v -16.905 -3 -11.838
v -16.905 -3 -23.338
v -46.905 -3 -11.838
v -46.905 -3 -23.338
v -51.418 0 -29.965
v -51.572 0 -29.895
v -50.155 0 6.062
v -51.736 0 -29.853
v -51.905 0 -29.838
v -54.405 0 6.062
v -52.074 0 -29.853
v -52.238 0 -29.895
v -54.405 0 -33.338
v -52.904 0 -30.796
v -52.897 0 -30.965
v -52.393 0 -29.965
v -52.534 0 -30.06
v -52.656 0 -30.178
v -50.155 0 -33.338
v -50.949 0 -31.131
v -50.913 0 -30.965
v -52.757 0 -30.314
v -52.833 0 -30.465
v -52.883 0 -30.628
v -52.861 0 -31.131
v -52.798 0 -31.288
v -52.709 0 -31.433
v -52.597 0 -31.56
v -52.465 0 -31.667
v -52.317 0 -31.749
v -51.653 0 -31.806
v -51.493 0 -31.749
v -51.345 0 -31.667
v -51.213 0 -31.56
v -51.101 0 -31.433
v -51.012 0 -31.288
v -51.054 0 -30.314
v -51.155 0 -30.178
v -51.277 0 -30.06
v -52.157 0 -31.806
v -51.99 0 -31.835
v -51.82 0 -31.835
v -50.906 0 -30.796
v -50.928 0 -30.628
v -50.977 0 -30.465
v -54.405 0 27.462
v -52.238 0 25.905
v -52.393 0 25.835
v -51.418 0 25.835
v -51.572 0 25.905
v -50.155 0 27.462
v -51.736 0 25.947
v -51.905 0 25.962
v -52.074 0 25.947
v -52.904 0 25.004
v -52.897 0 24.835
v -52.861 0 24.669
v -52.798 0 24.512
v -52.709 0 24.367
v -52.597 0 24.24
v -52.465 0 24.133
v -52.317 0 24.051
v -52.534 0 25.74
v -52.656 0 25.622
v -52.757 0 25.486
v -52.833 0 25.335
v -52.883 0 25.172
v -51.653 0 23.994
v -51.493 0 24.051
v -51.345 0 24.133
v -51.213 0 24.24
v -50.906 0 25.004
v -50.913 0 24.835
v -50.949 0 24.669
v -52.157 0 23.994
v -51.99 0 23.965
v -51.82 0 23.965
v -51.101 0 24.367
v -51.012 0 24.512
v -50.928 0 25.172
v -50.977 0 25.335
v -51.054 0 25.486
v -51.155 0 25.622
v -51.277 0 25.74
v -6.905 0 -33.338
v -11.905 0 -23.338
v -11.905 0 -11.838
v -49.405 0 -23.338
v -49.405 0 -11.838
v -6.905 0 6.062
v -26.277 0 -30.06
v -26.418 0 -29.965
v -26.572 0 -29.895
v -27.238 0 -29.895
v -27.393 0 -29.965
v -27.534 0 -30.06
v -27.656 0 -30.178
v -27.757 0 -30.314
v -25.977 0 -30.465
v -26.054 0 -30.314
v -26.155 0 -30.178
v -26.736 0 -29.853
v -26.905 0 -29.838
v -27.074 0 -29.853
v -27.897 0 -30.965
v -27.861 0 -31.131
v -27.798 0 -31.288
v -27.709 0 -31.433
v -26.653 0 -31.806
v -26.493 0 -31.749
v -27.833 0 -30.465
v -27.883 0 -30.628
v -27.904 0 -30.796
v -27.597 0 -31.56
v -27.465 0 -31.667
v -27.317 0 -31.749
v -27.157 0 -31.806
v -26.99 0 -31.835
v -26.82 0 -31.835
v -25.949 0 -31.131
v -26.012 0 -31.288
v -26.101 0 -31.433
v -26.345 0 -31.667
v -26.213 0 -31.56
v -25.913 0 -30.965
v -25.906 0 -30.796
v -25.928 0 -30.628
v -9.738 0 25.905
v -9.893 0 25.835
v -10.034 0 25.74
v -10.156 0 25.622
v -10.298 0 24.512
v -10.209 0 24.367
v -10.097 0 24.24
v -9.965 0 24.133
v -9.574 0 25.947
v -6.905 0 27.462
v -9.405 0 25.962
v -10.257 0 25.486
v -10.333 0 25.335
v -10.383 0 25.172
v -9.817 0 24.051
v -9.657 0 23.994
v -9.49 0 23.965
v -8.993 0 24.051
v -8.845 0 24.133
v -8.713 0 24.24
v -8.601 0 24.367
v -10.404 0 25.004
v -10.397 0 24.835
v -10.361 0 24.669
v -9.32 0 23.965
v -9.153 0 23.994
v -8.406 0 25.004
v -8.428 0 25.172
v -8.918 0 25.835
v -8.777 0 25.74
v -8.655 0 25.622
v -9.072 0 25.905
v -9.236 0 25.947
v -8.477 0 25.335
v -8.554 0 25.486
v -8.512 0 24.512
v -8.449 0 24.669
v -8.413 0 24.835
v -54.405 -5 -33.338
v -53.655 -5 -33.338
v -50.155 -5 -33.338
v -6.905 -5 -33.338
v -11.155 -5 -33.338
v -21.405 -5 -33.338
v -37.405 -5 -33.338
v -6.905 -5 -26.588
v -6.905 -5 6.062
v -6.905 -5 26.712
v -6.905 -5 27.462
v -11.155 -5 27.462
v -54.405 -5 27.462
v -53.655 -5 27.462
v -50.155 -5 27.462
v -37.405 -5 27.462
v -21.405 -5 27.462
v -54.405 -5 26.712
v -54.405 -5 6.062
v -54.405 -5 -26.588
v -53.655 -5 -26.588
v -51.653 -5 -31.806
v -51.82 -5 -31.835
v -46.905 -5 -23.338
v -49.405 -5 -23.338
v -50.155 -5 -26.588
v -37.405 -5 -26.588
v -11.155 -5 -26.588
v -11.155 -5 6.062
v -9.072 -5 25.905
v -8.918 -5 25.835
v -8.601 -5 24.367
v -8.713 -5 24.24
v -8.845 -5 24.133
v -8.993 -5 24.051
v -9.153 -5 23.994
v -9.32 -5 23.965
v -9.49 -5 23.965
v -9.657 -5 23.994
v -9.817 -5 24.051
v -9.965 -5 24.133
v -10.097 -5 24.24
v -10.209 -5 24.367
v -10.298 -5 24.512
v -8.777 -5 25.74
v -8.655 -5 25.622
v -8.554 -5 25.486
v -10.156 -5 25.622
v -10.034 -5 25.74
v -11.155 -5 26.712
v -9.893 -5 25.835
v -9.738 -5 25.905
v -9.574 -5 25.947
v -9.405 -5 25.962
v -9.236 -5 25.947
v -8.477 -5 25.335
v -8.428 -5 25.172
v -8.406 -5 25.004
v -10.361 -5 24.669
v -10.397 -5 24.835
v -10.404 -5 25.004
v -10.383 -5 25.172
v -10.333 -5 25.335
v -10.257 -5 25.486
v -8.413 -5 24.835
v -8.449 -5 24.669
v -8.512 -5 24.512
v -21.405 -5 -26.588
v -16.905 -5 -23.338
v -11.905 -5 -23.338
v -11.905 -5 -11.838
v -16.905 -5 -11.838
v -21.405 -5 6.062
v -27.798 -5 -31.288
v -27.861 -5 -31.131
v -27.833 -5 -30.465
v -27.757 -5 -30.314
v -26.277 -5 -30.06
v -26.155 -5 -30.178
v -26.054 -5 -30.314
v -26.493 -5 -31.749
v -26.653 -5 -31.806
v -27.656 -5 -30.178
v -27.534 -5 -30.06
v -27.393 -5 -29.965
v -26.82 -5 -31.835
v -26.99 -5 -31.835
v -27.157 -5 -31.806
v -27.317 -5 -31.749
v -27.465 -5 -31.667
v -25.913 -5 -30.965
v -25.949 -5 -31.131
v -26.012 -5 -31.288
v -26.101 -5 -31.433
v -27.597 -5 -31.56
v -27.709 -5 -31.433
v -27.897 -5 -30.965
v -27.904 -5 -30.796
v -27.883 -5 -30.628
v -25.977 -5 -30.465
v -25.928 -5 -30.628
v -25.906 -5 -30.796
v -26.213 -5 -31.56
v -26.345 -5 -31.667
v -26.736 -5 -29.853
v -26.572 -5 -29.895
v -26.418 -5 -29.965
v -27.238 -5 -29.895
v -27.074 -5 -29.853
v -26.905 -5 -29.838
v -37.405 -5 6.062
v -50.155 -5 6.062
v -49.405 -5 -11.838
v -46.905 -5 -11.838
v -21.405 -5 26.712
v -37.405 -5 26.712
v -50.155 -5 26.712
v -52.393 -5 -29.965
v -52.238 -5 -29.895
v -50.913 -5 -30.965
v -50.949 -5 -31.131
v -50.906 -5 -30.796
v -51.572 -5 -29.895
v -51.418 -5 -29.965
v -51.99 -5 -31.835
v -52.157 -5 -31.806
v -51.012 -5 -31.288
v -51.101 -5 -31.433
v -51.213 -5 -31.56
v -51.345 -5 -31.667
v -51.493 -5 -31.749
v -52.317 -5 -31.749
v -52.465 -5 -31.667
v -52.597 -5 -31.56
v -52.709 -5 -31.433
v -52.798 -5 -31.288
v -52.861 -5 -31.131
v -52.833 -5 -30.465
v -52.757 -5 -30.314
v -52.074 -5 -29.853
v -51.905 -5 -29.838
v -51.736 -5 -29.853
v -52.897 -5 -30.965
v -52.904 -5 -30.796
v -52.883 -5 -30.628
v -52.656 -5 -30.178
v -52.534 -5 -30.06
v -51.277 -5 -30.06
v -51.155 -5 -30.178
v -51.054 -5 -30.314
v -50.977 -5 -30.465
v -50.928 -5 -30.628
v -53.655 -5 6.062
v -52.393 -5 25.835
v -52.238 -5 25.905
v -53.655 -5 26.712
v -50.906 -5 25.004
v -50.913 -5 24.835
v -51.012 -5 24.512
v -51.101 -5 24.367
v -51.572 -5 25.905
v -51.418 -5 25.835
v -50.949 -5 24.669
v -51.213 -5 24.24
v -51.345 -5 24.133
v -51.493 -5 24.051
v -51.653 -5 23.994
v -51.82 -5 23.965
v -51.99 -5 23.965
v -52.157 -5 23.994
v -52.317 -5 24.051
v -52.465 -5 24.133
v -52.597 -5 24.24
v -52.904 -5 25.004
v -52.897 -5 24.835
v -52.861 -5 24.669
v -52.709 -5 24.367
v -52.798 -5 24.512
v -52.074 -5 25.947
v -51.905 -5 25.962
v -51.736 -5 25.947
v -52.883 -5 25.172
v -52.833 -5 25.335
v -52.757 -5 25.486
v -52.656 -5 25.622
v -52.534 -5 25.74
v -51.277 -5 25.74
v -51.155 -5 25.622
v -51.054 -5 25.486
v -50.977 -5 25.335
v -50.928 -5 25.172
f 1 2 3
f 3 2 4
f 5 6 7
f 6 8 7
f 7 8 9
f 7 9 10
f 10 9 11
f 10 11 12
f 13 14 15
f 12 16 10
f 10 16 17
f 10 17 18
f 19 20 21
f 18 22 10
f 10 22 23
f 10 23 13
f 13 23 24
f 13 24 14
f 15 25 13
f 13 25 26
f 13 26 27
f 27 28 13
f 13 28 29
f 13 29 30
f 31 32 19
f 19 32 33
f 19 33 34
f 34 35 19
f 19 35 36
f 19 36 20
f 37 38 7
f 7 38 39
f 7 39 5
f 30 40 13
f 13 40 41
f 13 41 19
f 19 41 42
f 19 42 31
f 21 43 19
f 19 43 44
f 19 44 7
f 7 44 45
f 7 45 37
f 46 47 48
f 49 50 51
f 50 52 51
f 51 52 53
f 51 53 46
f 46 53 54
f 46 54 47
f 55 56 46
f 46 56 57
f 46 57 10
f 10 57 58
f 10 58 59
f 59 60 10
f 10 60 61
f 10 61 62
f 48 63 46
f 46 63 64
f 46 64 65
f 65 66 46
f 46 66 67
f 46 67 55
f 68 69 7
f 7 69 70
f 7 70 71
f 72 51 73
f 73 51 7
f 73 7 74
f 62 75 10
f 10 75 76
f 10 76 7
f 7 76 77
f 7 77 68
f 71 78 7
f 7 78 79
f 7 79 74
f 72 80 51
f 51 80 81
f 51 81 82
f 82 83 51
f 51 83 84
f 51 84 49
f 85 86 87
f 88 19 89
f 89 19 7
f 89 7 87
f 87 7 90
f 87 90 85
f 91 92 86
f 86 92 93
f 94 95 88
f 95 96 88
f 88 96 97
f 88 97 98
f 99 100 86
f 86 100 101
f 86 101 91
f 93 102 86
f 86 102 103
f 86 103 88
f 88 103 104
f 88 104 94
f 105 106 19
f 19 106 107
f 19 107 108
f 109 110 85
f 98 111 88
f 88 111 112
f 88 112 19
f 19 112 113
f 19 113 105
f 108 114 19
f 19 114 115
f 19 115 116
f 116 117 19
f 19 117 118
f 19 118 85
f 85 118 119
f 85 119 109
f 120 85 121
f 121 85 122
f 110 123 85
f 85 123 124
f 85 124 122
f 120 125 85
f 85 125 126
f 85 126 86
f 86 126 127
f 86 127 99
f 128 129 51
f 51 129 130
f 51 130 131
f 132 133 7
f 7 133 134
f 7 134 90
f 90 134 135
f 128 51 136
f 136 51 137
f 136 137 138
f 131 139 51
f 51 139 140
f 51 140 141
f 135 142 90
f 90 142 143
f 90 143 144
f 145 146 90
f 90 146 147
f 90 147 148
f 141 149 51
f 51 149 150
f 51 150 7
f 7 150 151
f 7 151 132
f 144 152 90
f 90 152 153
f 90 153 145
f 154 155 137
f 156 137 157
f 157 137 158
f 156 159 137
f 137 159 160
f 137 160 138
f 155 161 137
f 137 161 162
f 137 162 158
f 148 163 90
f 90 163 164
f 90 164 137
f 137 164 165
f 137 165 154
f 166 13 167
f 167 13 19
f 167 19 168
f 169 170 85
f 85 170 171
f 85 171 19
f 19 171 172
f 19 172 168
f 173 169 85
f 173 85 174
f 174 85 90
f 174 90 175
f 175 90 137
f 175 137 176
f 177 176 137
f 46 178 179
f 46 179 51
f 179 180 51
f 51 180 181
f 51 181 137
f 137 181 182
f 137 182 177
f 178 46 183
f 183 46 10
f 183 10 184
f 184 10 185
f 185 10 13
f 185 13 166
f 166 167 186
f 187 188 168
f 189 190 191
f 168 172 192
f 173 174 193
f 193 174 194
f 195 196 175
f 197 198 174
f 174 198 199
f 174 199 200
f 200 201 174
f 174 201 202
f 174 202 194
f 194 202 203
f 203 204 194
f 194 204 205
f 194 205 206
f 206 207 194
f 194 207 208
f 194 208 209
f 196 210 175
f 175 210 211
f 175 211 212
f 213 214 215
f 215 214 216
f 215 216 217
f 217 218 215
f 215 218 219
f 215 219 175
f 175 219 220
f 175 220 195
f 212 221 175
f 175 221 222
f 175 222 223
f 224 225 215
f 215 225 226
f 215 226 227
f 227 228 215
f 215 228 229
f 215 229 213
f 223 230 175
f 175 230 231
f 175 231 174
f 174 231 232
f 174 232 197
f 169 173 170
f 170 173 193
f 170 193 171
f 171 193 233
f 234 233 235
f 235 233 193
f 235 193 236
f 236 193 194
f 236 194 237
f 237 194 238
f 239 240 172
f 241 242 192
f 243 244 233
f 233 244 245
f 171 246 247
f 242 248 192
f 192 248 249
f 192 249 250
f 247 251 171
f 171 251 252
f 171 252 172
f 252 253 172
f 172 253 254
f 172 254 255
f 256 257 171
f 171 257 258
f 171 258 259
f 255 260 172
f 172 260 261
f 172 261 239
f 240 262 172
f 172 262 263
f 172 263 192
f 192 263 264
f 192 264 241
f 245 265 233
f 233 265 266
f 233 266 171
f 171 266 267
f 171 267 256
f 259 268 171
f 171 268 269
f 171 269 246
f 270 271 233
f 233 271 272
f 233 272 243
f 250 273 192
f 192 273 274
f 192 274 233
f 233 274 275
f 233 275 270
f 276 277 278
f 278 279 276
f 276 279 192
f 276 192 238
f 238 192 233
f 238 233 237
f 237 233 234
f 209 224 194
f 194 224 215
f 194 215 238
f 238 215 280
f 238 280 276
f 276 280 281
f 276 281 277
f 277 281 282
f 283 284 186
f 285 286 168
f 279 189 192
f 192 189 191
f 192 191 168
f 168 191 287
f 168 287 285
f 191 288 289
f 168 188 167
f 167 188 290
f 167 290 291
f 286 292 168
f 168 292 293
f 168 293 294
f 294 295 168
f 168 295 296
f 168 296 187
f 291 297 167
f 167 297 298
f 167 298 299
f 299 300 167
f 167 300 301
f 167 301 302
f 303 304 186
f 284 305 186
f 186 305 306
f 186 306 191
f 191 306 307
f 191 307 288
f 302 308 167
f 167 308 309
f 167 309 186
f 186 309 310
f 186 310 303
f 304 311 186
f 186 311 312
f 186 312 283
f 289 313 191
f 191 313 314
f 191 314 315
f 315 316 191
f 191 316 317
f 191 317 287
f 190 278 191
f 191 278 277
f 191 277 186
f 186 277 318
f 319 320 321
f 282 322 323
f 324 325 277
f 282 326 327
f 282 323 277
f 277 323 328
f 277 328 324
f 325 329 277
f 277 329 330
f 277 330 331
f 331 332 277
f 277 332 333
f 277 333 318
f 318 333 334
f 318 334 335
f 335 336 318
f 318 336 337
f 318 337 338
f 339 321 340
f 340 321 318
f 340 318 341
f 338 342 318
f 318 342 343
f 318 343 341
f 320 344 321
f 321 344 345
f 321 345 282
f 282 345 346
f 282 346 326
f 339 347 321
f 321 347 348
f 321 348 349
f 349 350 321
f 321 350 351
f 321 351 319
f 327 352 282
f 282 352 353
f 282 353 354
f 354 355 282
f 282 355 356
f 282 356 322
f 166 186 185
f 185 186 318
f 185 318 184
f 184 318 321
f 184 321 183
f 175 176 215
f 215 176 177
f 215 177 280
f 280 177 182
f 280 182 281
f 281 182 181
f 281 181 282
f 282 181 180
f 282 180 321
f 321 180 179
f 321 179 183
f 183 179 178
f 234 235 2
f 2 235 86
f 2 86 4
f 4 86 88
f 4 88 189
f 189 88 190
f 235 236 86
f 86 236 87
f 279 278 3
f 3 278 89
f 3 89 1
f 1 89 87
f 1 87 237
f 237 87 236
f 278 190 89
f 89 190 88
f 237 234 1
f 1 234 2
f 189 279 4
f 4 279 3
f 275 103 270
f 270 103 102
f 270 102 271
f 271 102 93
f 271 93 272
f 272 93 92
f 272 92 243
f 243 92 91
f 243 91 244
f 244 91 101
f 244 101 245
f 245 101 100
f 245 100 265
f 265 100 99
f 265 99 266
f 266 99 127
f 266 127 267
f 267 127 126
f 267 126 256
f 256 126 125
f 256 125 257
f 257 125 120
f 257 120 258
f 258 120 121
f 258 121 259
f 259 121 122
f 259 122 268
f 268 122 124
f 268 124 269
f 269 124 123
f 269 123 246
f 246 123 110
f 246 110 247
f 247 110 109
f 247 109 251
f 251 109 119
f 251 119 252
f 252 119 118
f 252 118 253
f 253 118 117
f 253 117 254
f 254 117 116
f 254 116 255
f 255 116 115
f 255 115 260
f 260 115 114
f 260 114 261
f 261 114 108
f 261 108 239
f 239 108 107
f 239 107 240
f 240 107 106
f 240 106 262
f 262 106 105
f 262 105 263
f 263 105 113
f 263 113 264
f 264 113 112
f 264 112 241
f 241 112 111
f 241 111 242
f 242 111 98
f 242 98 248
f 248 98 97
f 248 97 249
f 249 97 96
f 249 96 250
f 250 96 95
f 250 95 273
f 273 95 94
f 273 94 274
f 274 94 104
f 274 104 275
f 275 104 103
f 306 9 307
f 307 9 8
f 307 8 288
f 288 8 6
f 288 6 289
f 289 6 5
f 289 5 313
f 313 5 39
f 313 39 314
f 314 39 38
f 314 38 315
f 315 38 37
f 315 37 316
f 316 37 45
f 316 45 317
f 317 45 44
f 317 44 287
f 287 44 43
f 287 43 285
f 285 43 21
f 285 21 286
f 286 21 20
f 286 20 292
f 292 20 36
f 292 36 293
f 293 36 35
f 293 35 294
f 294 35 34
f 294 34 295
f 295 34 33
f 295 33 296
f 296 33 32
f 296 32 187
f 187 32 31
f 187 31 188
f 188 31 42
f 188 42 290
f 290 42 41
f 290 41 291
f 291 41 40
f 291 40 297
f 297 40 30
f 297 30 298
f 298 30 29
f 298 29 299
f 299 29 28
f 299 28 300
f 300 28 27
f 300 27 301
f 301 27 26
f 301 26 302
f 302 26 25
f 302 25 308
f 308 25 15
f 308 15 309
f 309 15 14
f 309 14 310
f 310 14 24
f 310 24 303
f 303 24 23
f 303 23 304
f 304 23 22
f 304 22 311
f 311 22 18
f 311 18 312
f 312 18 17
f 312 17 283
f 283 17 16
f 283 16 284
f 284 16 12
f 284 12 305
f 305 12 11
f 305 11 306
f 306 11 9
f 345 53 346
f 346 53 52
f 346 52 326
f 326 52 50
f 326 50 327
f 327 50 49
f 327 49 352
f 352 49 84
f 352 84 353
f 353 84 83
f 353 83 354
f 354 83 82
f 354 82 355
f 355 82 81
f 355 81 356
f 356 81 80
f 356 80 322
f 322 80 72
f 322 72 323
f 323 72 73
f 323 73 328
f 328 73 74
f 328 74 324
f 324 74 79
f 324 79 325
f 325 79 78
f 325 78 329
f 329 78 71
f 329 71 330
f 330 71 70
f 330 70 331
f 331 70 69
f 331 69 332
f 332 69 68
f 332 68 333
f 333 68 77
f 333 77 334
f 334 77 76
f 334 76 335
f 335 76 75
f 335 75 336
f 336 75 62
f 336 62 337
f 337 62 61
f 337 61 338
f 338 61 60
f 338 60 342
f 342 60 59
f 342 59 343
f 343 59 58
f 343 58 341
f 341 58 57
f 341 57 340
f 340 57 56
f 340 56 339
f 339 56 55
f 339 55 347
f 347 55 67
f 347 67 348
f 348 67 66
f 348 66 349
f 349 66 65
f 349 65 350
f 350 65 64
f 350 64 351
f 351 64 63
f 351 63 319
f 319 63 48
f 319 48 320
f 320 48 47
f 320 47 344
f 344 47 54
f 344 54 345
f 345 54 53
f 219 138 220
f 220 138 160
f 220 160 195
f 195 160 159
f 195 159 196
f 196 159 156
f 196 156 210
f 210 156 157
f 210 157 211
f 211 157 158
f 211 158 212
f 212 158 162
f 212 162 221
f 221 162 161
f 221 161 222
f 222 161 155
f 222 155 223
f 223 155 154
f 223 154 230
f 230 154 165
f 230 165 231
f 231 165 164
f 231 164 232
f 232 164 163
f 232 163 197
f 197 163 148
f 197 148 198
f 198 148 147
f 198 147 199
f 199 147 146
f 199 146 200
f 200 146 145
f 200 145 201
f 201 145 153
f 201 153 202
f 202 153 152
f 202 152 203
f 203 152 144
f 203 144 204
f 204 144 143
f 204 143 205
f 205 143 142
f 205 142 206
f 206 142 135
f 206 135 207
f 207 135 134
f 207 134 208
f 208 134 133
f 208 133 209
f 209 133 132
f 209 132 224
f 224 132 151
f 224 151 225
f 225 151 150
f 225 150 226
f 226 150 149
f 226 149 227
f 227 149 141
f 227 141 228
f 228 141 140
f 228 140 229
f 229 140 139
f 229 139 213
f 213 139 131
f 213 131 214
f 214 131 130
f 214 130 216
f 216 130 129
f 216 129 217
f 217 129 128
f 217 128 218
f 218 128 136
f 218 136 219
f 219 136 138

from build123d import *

# Parameters (mm, degrees)
SKETCH_1_W          = 47.5
SKETCH_1_H          = 60.8
EXTRUDE_1_DEPTH     = 5
SKETCH_2_W          = 37.5
SKETCH_2_H          = 11.5
CUT_EXTRUDE_1_DEPTH = 3
SKETCH_3_W          = 2.5
SKETCH_3_H          = 11.5
SKETCH_3_W_2        = 5
CUT_EXTRUDE_2_DEPTH = 2
SKETCH_4_R          = 1
CUT_EXTRUDE_3_DEPTH = 5


with BuildPart() as part:
    # 草图1 → 凸台-拉伸1 (new body)
    with BuildSketch(Plane(origin=(0, 0, 0), x_dir=(1, 0, 0), z_dir=(0, 1, 0))):
        with Locations((-30.655286344, 2.938237127)):
            Rectangle(SKETCH_1_W, SKETCH_1_H)
    extrude(amount=-EXTRUDE_1_DEPTH)

    # 草图2 → 切除-拉伸1 (cut)
    with BuildSketch(Plane(origin=(0, 0, 0), x_dir=(1, 0, 0), z_dir=(0, 1, 0))):
        with Locations((-30.655286344, 17.588237127)):
            Rectangle(SKETCH_2_W, SKETCH_2_H)
    extrude(amount=-CUT_EXTRUDE_1_DEPTH, mode=Mode.SUBTRACT)

    # 草图3 → 切除-拉伸2 (cut)
    with BuildSketch(Plane(origin=(0, -3, 0), x_dir=(1, 0, 0), z_dir=(0, 1, 0))):
        with Locations((-48.155286344, 17.588237127)):
            Rectangle(SKETCH_3_W, SKETCH_3_H)
        with Locations((-14.405286344, 17.588237127)):
            Rectangle(SKETCH_3_W_2, SKETCH_3_H)
    extrude(amount=-CUT_EXTRUDE_2_DEPTH, mode=Mode.SUBTRACT)

    # 草图4 → 切除-拉伸3 (cut)
    with BuildSketch(Plane(origin=(0, 0, 0), x_dir=(1, 0, 0), z_dir=(0, 1, 0))):
        with Locations(Location((-9.405286344, -24.961762873, 0), (0, 0, 270))):
            Circle(SKETCH_4_R)
        with Locations(Location((-51.905286344, -24.961762873, 0), (0, 0, 270))):
            Circle(SKETCH_4_R)
        with Locations(Location((-51.905286344, 30.838237127, 0), (0, 0, 270))):
            Circle(SKETCH_4_R)
        with Locations(Location((-26.905286344, 30.838237127, 0), (0, 0, 270))):
            Circle(SKETCH_4_R)
    extrude(amount=-CUT_EXTRUDE_3_DEPTH, mode=Mode.SUBTRACT)


solid = part.part
